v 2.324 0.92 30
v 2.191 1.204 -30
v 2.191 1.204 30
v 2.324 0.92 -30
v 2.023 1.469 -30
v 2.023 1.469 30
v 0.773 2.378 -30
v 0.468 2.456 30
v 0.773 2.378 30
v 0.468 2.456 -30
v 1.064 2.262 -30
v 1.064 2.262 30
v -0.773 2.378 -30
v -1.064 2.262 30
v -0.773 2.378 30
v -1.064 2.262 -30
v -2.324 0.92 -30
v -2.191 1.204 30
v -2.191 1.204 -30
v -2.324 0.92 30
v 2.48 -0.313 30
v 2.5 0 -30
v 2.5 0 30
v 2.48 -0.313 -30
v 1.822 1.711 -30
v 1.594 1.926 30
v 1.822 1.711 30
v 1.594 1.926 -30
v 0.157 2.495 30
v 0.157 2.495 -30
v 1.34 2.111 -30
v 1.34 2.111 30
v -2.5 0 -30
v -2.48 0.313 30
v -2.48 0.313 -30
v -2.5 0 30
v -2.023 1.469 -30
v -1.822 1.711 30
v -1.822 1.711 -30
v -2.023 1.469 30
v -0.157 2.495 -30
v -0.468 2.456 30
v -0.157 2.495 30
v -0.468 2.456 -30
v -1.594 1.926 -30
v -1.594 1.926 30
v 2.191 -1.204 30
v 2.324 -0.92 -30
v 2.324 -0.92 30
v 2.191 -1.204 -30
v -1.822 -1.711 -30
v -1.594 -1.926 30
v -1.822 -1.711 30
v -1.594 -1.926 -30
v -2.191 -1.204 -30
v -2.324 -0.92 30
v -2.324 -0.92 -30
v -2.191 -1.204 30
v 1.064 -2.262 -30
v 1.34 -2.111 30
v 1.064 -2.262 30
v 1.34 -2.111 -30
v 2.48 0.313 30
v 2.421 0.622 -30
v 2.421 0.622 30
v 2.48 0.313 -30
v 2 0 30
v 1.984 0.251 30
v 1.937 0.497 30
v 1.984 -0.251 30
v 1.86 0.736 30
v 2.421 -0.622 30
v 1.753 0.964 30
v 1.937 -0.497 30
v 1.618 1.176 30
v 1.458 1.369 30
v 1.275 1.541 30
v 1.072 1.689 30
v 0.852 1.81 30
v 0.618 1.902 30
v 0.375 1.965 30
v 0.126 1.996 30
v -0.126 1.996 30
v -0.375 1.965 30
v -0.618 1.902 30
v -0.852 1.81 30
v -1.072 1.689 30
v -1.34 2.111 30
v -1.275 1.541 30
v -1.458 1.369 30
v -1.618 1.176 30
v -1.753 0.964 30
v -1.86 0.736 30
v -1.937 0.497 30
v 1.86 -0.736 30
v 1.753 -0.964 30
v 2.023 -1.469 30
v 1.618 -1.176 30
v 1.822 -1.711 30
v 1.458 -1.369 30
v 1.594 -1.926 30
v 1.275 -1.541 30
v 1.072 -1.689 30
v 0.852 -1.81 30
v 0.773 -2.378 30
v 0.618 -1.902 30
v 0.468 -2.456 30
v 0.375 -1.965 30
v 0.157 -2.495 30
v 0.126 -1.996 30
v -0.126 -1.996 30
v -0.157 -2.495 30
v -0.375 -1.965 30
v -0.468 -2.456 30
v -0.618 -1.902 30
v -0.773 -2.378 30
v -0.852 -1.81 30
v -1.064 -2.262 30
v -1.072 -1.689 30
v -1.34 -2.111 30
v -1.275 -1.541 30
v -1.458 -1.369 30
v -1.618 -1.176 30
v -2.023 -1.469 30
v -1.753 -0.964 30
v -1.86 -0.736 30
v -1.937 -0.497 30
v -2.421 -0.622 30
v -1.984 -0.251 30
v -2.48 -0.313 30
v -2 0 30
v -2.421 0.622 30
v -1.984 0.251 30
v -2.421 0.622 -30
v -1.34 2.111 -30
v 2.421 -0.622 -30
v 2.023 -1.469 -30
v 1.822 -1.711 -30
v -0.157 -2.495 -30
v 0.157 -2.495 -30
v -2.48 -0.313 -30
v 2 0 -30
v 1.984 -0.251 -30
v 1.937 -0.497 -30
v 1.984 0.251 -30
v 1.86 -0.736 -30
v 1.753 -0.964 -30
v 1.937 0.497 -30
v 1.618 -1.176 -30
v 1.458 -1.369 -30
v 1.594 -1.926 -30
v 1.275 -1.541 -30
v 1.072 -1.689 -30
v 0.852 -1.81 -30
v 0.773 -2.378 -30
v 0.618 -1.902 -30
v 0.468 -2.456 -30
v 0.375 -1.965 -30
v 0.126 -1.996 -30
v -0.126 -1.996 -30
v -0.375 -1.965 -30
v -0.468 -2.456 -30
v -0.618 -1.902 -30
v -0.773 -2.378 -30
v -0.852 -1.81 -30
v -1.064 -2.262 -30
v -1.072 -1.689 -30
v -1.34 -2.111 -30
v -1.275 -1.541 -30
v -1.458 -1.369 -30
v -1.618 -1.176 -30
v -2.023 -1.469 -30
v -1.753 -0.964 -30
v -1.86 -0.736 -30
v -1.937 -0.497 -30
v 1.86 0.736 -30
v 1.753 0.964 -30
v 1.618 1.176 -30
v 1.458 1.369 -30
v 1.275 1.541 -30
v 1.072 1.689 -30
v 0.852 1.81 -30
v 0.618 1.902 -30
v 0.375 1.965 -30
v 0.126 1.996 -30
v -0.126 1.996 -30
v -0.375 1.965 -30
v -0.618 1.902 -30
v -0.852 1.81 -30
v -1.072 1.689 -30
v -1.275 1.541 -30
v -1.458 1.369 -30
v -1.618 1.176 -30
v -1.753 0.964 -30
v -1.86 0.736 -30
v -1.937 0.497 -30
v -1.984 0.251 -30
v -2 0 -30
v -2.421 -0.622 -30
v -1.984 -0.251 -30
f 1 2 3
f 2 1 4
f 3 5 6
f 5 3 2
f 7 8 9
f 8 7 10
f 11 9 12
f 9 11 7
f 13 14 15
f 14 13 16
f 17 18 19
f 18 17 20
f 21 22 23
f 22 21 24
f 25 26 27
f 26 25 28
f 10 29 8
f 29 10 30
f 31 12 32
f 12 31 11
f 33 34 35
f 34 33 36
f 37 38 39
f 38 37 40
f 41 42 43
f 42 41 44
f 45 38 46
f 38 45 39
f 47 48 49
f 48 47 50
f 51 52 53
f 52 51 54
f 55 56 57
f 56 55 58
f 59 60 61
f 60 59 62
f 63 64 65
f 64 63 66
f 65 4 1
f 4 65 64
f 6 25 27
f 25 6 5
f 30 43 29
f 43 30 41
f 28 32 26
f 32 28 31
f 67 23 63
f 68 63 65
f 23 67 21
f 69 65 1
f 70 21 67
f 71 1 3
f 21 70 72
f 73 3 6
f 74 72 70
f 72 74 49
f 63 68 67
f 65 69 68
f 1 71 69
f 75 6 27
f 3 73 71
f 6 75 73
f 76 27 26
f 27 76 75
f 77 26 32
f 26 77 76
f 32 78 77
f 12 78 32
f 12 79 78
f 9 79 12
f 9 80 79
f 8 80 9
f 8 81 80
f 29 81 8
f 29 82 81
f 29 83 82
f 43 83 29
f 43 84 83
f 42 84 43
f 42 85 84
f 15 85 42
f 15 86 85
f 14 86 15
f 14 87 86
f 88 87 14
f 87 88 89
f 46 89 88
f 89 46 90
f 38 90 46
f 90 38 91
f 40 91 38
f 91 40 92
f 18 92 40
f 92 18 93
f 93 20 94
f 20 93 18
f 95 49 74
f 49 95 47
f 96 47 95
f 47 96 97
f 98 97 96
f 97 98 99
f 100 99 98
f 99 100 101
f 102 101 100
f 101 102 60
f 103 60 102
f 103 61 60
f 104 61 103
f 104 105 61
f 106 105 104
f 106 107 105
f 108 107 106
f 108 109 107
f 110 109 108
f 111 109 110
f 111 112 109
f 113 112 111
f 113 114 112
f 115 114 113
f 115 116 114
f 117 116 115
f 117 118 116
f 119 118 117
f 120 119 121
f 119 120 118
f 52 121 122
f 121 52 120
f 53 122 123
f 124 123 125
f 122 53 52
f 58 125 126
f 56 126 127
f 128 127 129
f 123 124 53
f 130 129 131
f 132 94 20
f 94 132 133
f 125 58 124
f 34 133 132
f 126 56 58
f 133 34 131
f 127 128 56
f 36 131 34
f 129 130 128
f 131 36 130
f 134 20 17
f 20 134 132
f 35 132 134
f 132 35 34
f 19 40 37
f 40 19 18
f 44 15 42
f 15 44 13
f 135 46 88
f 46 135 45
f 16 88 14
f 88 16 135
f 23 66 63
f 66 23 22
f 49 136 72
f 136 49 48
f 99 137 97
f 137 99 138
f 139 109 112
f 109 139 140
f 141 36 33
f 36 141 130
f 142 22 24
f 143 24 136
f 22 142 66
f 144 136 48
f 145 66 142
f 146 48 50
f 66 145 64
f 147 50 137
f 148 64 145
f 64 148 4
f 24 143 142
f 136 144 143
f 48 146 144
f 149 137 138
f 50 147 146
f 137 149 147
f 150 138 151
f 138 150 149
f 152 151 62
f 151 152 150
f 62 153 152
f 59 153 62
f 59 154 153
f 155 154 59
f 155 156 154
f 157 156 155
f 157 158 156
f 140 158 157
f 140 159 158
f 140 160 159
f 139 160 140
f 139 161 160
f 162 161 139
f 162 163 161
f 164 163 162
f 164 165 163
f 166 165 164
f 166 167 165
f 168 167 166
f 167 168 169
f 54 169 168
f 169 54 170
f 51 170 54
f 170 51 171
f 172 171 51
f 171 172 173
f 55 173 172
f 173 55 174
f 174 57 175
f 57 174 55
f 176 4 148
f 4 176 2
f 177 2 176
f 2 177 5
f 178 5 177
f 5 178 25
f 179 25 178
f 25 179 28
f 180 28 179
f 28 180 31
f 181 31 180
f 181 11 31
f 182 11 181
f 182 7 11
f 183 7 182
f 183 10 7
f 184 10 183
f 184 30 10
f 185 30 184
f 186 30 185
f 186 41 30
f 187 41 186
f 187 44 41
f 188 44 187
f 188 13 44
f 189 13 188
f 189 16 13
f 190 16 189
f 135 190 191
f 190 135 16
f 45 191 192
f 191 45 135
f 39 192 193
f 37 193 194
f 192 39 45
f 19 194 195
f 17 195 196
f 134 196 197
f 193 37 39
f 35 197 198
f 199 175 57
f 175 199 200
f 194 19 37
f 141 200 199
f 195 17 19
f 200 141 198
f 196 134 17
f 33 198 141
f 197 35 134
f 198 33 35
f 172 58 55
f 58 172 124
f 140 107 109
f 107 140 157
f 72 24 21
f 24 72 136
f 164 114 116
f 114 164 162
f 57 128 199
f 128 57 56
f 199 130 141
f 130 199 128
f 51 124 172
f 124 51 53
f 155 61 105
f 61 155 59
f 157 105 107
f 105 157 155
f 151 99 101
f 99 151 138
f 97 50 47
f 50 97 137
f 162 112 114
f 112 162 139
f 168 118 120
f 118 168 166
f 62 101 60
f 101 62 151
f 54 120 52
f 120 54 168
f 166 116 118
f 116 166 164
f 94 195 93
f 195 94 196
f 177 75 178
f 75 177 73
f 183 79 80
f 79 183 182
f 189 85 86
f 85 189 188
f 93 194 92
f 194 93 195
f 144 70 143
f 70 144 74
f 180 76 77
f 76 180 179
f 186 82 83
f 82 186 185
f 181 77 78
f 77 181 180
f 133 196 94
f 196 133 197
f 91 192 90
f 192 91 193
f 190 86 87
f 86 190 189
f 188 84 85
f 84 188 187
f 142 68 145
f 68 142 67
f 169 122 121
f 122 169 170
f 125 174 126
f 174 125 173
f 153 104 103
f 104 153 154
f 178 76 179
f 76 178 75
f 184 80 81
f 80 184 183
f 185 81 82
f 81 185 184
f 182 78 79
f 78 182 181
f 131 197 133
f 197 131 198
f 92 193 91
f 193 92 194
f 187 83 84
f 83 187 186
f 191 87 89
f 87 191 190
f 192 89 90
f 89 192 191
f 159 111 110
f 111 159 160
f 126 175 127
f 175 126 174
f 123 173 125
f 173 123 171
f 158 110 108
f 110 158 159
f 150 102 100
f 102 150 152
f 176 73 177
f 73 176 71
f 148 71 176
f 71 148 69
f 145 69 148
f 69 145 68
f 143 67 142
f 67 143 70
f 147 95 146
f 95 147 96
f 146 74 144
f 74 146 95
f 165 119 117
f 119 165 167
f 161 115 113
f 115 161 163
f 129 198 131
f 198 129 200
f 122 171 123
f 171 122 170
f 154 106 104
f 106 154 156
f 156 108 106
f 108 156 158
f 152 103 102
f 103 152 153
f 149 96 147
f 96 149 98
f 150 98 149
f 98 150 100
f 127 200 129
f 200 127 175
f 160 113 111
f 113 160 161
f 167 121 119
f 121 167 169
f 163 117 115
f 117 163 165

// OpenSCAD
$fn = 50;


difference() {
	union() {
		translate(v = [0, 0, -30.0000000000]) {
			cylinder(h = 60, r = 2.5000000000);
		}
	}
	union() {
		translate(v = [0, 0, -100.0000000000]) {
			cylinder(h = 200, r = 2);
		}
	}
}
